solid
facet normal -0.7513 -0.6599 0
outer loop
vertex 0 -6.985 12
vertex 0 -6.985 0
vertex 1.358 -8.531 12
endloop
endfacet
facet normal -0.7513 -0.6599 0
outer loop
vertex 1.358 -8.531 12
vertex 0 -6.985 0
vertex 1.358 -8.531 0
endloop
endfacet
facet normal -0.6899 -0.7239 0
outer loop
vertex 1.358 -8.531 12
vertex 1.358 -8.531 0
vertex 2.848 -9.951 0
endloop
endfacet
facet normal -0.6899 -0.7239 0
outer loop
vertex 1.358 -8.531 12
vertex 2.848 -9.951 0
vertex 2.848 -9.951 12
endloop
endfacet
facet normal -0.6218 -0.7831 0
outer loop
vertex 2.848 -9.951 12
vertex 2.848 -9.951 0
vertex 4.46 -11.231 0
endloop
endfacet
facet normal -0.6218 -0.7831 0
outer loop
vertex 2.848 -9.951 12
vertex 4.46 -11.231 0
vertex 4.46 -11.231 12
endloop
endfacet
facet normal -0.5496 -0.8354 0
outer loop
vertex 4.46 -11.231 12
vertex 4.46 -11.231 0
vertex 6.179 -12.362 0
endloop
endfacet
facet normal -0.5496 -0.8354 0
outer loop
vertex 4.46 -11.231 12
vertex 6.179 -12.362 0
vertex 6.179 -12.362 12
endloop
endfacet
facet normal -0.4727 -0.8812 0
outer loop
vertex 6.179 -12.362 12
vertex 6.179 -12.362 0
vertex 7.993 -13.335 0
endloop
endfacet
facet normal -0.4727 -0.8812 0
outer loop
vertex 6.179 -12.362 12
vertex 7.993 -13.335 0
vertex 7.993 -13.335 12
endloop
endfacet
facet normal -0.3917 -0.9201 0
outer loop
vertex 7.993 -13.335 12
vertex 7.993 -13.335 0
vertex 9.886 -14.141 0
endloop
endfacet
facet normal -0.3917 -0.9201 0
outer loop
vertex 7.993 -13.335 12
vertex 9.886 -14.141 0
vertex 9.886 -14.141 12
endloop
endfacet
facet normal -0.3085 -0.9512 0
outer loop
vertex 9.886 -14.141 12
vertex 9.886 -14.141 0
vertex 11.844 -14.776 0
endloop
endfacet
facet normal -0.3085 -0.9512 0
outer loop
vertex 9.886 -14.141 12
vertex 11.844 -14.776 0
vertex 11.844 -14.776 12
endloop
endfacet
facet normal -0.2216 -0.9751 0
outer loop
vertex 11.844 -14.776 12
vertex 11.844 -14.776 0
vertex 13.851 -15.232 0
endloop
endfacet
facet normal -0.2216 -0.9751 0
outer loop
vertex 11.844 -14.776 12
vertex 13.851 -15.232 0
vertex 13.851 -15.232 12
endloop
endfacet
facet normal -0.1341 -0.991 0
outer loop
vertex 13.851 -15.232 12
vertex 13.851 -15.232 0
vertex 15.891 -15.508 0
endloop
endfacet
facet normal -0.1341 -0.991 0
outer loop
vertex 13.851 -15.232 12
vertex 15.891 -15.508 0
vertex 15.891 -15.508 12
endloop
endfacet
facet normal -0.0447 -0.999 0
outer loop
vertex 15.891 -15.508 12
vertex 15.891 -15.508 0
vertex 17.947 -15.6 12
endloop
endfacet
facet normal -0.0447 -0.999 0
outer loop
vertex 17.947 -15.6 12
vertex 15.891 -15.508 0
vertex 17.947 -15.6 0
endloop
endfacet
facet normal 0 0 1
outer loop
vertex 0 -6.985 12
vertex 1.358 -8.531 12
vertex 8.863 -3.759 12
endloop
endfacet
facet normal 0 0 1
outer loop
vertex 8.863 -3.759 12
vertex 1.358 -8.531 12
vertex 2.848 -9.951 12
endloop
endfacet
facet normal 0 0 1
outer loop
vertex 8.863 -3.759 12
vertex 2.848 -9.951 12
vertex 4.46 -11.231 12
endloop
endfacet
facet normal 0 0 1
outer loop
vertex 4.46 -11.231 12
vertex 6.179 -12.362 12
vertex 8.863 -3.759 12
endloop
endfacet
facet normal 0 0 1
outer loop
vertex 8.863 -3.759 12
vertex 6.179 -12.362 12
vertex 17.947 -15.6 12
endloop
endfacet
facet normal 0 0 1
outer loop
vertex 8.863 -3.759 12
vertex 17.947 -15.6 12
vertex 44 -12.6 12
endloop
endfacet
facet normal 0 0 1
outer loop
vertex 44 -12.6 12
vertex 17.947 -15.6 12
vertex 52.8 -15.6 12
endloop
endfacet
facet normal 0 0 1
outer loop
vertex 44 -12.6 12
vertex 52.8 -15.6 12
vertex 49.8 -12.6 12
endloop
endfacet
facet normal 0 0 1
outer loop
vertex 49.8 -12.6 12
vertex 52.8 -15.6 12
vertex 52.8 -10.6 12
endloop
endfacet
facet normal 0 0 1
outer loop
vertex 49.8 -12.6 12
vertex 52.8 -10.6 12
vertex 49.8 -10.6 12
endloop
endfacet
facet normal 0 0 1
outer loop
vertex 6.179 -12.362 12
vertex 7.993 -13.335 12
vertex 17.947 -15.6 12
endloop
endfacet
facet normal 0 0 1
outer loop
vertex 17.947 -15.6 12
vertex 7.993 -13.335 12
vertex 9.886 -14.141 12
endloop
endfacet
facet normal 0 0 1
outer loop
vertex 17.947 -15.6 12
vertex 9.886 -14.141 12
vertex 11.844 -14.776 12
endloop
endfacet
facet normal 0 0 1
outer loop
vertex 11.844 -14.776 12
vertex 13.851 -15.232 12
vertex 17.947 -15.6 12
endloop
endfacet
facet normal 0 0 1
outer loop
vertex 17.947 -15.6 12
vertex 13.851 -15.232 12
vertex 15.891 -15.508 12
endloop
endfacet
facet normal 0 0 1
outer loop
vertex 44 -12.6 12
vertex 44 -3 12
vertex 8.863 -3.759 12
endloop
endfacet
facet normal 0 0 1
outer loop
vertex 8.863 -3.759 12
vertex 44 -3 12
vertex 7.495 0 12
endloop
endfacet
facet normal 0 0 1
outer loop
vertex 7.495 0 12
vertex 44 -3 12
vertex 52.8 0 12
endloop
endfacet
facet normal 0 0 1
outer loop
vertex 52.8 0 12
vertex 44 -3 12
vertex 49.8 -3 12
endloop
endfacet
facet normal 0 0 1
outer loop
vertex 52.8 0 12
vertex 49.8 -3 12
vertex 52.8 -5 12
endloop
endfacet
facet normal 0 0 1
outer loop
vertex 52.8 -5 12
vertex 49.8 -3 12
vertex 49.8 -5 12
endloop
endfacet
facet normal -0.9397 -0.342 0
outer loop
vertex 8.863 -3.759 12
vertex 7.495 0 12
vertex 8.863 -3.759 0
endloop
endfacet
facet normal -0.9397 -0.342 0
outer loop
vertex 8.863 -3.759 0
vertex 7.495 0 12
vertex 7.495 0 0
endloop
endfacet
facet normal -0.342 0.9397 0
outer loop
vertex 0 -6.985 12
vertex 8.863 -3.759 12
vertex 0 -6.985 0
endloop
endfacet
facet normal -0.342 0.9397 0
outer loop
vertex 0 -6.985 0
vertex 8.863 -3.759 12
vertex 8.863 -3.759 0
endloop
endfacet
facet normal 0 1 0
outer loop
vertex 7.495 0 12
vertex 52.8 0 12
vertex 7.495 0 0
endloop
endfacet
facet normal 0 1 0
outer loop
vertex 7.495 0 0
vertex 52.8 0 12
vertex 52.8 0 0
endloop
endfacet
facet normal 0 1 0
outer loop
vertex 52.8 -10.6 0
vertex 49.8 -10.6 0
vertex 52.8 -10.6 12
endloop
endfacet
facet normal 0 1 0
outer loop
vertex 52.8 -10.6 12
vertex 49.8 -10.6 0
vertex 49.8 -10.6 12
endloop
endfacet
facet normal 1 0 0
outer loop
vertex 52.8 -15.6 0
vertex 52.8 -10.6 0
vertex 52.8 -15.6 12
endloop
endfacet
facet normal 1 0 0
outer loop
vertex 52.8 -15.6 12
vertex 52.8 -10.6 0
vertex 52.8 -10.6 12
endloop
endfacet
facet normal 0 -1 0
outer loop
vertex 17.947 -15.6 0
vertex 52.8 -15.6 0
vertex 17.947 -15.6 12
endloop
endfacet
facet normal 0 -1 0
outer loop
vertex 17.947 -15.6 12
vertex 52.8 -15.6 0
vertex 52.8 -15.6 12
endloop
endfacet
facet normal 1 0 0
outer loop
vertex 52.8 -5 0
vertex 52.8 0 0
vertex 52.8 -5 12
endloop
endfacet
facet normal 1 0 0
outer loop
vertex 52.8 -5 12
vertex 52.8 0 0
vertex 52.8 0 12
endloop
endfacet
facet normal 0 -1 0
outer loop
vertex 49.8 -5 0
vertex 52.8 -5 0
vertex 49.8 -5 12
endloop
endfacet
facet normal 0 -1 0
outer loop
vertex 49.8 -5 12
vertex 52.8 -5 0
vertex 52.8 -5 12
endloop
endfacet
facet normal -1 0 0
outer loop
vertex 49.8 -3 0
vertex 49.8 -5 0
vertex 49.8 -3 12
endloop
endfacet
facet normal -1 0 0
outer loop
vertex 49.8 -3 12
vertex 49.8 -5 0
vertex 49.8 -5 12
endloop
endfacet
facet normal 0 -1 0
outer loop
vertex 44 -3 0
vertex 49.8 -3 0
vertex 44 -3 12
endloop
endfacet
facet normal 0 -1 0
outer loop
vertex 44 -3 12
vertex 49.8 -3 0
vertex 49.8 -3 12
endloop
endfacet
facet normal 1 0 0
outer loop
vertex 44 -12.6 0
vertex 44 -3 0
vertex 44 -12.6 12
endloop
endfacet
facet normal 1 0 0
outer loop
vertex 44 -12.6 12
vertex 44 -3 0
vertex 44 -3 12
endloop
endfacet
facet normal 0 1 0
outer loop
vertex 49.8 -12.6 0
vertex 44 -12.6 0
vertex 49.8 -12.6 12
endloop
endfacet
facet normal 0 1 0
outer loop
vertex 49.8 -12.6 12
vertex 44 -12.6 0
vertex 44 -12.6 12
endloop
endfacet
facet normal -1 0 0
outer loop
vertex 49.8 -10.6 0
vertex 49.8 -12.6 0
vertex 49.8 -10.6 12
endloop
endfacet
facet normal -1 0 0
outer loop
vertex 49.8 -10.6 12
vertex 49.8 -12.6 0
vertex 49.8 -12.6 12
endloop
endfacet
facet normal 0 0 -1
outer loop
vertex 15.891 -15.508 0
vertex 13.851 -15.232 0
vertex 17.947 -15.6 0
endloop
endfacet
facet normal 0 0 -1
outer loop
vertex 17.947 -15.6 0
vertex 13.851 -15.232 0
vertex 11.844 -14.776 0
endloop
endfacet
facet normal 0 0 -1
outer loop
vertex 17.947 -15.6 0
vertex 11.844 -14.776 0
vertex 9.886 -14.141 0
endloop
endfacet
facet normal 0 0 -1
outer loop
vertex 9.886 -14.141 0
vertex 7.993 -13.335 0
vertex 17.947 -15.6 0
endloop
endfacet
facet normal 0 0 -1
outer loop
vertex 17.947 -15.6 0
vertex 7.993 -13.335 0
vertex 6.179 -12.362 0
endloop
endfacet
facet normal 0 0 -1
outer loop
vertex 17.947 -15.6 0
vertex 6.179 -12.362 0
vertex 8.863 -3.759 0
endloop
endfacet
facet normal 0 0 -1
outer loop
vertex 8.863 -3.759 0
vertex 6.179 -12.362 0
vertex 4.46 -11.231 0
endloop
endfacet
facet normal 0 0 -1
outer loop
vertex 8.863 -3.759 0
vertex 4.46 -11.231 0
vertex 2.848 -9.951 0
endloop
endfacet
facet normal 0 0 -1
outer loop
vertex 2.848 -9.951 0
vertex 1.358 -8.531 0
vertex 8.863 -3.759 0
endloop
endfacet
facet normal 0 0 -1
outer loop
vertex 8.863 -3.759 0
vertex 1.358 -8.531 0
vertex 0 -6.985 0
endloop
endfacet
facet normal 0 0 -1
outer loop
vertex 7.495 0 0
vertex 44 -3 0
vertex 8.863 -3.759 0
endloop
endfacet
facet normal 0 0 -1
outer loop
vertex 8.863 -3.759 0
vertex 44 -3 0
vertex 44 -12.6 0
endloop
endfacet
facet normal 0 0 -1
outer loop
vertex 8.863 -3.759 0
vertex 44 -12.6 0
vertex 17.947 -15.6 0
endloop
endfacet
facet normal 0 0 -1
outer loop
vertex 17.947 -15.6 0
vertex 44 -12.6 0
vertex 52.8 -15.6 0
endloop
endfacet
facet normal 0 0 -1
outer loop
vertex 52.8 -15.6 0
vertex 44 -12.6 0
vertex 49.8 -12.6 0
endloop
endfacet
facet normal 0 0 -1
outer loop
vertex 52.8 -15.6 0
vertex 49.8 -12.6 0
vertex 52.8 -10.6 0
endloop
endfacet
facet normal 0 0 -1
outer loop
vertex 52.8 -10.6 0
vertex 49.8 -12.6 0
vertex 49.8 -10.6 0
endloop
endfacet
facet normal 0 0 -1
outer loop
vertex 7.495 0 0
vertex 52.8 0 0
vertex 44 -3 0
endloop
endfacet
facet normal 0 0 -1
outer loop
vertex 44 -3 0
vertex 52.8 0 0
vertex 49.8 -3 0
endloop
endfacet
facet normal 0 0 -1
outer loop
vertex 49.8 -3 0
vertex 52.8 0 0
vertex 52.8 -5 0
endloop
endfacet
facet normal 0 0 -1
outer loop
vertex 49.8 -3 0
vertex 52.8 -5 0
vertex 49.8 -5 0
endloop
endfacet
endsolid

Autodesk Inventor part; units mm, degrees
ref_plane "YZ Plane" through (0, 0, 0) normal (1, 0, 0) x (0, 1, 0)
ref_plane "XZ Plane" through (0, 0, 0) normal (0, 1, 0) x (-1, 0, 0)
ref_plane "XY Plane" through (0, 0, 0) normal (0, 0, 1) x (1, 0, 0)
sketch "Sketch5" plane through (0, 0, 0) normal (0, 0, 1) x (1, 0, 0)
  line L0 (52.8, -15.6) -> (52.8, -10.6)
  line L1 (52.8, -10.6) -> (49.8, -10.6)
  line L2 (49.8, -10.6) -> (49.8, -12.6)
  line L3 (44, -12.6) -> (44, -3)
  line L4 (49.8, -3) -> (49.8, -5)
  line L5 (49.8, -5) -> (52.8, -5)
  line L6 (52.8, -5) -> (52.8, 0)
  line L7 (52.8, 0) -> (7.8, 0)
  line L8 (44, -3) -> (49.8, -3)
  line L9 (44, -12.6) -> (49.8, -12.6)
  line L10 (52.8, -15.6) -> (7.8, -15.6)
  line L11 (7.8, -15.6) -> (0, -15.6)
  line L12 (0, -15.6) -> (0, 0)
  line L13 (0, 0) -> (7.8, 0)
  point P0 (7.8, 0)
  dimension "d41" = 5.8
  dimension "d48" = 44
  dimension "d50" = 3
  dimension "d63" = 45
  dimension "d71" = 0
  dimension "d87" = 5.6
  dimension "d88" = 9.6
  dimension "d97" = 15.6
extrude "Extrusion2" add sketch "Sketch5" along normal blind 12
sketch "Sketch8" plane through (0, 0, 0) normal (0, 0, -1) x (-1, 0, 0)
  line L0 (-7.4952, 0) -> (-8.8633, -3.7588)
  line L1 (0, -6.9847) -> (-8.8633, -3.7588)
  line L2 (0, 0) -> (0, -6.9847)
  line L3 (-44, -12.6) -> (-44, -3) projected
  line L4 (-52.8, 0) -> (0, 0) projected
  line L5 (-52.8, 0) -> (0, 0) projected
  line L6 (0, 0) -> (-7.4952, 0)
  dimension "d95" = 4
  dimension "d99" = 35.1367
  dimension "d100" = 110
extrude "Extrusion5" cut sketch "Sketch8" against normal through all
fillet "Fillet2" radius 23 1 edges at (0, -15.6, 6)
equation "\"l1\" = 8"
properties part number "Finray_test_8_Kerbe_10deg"
